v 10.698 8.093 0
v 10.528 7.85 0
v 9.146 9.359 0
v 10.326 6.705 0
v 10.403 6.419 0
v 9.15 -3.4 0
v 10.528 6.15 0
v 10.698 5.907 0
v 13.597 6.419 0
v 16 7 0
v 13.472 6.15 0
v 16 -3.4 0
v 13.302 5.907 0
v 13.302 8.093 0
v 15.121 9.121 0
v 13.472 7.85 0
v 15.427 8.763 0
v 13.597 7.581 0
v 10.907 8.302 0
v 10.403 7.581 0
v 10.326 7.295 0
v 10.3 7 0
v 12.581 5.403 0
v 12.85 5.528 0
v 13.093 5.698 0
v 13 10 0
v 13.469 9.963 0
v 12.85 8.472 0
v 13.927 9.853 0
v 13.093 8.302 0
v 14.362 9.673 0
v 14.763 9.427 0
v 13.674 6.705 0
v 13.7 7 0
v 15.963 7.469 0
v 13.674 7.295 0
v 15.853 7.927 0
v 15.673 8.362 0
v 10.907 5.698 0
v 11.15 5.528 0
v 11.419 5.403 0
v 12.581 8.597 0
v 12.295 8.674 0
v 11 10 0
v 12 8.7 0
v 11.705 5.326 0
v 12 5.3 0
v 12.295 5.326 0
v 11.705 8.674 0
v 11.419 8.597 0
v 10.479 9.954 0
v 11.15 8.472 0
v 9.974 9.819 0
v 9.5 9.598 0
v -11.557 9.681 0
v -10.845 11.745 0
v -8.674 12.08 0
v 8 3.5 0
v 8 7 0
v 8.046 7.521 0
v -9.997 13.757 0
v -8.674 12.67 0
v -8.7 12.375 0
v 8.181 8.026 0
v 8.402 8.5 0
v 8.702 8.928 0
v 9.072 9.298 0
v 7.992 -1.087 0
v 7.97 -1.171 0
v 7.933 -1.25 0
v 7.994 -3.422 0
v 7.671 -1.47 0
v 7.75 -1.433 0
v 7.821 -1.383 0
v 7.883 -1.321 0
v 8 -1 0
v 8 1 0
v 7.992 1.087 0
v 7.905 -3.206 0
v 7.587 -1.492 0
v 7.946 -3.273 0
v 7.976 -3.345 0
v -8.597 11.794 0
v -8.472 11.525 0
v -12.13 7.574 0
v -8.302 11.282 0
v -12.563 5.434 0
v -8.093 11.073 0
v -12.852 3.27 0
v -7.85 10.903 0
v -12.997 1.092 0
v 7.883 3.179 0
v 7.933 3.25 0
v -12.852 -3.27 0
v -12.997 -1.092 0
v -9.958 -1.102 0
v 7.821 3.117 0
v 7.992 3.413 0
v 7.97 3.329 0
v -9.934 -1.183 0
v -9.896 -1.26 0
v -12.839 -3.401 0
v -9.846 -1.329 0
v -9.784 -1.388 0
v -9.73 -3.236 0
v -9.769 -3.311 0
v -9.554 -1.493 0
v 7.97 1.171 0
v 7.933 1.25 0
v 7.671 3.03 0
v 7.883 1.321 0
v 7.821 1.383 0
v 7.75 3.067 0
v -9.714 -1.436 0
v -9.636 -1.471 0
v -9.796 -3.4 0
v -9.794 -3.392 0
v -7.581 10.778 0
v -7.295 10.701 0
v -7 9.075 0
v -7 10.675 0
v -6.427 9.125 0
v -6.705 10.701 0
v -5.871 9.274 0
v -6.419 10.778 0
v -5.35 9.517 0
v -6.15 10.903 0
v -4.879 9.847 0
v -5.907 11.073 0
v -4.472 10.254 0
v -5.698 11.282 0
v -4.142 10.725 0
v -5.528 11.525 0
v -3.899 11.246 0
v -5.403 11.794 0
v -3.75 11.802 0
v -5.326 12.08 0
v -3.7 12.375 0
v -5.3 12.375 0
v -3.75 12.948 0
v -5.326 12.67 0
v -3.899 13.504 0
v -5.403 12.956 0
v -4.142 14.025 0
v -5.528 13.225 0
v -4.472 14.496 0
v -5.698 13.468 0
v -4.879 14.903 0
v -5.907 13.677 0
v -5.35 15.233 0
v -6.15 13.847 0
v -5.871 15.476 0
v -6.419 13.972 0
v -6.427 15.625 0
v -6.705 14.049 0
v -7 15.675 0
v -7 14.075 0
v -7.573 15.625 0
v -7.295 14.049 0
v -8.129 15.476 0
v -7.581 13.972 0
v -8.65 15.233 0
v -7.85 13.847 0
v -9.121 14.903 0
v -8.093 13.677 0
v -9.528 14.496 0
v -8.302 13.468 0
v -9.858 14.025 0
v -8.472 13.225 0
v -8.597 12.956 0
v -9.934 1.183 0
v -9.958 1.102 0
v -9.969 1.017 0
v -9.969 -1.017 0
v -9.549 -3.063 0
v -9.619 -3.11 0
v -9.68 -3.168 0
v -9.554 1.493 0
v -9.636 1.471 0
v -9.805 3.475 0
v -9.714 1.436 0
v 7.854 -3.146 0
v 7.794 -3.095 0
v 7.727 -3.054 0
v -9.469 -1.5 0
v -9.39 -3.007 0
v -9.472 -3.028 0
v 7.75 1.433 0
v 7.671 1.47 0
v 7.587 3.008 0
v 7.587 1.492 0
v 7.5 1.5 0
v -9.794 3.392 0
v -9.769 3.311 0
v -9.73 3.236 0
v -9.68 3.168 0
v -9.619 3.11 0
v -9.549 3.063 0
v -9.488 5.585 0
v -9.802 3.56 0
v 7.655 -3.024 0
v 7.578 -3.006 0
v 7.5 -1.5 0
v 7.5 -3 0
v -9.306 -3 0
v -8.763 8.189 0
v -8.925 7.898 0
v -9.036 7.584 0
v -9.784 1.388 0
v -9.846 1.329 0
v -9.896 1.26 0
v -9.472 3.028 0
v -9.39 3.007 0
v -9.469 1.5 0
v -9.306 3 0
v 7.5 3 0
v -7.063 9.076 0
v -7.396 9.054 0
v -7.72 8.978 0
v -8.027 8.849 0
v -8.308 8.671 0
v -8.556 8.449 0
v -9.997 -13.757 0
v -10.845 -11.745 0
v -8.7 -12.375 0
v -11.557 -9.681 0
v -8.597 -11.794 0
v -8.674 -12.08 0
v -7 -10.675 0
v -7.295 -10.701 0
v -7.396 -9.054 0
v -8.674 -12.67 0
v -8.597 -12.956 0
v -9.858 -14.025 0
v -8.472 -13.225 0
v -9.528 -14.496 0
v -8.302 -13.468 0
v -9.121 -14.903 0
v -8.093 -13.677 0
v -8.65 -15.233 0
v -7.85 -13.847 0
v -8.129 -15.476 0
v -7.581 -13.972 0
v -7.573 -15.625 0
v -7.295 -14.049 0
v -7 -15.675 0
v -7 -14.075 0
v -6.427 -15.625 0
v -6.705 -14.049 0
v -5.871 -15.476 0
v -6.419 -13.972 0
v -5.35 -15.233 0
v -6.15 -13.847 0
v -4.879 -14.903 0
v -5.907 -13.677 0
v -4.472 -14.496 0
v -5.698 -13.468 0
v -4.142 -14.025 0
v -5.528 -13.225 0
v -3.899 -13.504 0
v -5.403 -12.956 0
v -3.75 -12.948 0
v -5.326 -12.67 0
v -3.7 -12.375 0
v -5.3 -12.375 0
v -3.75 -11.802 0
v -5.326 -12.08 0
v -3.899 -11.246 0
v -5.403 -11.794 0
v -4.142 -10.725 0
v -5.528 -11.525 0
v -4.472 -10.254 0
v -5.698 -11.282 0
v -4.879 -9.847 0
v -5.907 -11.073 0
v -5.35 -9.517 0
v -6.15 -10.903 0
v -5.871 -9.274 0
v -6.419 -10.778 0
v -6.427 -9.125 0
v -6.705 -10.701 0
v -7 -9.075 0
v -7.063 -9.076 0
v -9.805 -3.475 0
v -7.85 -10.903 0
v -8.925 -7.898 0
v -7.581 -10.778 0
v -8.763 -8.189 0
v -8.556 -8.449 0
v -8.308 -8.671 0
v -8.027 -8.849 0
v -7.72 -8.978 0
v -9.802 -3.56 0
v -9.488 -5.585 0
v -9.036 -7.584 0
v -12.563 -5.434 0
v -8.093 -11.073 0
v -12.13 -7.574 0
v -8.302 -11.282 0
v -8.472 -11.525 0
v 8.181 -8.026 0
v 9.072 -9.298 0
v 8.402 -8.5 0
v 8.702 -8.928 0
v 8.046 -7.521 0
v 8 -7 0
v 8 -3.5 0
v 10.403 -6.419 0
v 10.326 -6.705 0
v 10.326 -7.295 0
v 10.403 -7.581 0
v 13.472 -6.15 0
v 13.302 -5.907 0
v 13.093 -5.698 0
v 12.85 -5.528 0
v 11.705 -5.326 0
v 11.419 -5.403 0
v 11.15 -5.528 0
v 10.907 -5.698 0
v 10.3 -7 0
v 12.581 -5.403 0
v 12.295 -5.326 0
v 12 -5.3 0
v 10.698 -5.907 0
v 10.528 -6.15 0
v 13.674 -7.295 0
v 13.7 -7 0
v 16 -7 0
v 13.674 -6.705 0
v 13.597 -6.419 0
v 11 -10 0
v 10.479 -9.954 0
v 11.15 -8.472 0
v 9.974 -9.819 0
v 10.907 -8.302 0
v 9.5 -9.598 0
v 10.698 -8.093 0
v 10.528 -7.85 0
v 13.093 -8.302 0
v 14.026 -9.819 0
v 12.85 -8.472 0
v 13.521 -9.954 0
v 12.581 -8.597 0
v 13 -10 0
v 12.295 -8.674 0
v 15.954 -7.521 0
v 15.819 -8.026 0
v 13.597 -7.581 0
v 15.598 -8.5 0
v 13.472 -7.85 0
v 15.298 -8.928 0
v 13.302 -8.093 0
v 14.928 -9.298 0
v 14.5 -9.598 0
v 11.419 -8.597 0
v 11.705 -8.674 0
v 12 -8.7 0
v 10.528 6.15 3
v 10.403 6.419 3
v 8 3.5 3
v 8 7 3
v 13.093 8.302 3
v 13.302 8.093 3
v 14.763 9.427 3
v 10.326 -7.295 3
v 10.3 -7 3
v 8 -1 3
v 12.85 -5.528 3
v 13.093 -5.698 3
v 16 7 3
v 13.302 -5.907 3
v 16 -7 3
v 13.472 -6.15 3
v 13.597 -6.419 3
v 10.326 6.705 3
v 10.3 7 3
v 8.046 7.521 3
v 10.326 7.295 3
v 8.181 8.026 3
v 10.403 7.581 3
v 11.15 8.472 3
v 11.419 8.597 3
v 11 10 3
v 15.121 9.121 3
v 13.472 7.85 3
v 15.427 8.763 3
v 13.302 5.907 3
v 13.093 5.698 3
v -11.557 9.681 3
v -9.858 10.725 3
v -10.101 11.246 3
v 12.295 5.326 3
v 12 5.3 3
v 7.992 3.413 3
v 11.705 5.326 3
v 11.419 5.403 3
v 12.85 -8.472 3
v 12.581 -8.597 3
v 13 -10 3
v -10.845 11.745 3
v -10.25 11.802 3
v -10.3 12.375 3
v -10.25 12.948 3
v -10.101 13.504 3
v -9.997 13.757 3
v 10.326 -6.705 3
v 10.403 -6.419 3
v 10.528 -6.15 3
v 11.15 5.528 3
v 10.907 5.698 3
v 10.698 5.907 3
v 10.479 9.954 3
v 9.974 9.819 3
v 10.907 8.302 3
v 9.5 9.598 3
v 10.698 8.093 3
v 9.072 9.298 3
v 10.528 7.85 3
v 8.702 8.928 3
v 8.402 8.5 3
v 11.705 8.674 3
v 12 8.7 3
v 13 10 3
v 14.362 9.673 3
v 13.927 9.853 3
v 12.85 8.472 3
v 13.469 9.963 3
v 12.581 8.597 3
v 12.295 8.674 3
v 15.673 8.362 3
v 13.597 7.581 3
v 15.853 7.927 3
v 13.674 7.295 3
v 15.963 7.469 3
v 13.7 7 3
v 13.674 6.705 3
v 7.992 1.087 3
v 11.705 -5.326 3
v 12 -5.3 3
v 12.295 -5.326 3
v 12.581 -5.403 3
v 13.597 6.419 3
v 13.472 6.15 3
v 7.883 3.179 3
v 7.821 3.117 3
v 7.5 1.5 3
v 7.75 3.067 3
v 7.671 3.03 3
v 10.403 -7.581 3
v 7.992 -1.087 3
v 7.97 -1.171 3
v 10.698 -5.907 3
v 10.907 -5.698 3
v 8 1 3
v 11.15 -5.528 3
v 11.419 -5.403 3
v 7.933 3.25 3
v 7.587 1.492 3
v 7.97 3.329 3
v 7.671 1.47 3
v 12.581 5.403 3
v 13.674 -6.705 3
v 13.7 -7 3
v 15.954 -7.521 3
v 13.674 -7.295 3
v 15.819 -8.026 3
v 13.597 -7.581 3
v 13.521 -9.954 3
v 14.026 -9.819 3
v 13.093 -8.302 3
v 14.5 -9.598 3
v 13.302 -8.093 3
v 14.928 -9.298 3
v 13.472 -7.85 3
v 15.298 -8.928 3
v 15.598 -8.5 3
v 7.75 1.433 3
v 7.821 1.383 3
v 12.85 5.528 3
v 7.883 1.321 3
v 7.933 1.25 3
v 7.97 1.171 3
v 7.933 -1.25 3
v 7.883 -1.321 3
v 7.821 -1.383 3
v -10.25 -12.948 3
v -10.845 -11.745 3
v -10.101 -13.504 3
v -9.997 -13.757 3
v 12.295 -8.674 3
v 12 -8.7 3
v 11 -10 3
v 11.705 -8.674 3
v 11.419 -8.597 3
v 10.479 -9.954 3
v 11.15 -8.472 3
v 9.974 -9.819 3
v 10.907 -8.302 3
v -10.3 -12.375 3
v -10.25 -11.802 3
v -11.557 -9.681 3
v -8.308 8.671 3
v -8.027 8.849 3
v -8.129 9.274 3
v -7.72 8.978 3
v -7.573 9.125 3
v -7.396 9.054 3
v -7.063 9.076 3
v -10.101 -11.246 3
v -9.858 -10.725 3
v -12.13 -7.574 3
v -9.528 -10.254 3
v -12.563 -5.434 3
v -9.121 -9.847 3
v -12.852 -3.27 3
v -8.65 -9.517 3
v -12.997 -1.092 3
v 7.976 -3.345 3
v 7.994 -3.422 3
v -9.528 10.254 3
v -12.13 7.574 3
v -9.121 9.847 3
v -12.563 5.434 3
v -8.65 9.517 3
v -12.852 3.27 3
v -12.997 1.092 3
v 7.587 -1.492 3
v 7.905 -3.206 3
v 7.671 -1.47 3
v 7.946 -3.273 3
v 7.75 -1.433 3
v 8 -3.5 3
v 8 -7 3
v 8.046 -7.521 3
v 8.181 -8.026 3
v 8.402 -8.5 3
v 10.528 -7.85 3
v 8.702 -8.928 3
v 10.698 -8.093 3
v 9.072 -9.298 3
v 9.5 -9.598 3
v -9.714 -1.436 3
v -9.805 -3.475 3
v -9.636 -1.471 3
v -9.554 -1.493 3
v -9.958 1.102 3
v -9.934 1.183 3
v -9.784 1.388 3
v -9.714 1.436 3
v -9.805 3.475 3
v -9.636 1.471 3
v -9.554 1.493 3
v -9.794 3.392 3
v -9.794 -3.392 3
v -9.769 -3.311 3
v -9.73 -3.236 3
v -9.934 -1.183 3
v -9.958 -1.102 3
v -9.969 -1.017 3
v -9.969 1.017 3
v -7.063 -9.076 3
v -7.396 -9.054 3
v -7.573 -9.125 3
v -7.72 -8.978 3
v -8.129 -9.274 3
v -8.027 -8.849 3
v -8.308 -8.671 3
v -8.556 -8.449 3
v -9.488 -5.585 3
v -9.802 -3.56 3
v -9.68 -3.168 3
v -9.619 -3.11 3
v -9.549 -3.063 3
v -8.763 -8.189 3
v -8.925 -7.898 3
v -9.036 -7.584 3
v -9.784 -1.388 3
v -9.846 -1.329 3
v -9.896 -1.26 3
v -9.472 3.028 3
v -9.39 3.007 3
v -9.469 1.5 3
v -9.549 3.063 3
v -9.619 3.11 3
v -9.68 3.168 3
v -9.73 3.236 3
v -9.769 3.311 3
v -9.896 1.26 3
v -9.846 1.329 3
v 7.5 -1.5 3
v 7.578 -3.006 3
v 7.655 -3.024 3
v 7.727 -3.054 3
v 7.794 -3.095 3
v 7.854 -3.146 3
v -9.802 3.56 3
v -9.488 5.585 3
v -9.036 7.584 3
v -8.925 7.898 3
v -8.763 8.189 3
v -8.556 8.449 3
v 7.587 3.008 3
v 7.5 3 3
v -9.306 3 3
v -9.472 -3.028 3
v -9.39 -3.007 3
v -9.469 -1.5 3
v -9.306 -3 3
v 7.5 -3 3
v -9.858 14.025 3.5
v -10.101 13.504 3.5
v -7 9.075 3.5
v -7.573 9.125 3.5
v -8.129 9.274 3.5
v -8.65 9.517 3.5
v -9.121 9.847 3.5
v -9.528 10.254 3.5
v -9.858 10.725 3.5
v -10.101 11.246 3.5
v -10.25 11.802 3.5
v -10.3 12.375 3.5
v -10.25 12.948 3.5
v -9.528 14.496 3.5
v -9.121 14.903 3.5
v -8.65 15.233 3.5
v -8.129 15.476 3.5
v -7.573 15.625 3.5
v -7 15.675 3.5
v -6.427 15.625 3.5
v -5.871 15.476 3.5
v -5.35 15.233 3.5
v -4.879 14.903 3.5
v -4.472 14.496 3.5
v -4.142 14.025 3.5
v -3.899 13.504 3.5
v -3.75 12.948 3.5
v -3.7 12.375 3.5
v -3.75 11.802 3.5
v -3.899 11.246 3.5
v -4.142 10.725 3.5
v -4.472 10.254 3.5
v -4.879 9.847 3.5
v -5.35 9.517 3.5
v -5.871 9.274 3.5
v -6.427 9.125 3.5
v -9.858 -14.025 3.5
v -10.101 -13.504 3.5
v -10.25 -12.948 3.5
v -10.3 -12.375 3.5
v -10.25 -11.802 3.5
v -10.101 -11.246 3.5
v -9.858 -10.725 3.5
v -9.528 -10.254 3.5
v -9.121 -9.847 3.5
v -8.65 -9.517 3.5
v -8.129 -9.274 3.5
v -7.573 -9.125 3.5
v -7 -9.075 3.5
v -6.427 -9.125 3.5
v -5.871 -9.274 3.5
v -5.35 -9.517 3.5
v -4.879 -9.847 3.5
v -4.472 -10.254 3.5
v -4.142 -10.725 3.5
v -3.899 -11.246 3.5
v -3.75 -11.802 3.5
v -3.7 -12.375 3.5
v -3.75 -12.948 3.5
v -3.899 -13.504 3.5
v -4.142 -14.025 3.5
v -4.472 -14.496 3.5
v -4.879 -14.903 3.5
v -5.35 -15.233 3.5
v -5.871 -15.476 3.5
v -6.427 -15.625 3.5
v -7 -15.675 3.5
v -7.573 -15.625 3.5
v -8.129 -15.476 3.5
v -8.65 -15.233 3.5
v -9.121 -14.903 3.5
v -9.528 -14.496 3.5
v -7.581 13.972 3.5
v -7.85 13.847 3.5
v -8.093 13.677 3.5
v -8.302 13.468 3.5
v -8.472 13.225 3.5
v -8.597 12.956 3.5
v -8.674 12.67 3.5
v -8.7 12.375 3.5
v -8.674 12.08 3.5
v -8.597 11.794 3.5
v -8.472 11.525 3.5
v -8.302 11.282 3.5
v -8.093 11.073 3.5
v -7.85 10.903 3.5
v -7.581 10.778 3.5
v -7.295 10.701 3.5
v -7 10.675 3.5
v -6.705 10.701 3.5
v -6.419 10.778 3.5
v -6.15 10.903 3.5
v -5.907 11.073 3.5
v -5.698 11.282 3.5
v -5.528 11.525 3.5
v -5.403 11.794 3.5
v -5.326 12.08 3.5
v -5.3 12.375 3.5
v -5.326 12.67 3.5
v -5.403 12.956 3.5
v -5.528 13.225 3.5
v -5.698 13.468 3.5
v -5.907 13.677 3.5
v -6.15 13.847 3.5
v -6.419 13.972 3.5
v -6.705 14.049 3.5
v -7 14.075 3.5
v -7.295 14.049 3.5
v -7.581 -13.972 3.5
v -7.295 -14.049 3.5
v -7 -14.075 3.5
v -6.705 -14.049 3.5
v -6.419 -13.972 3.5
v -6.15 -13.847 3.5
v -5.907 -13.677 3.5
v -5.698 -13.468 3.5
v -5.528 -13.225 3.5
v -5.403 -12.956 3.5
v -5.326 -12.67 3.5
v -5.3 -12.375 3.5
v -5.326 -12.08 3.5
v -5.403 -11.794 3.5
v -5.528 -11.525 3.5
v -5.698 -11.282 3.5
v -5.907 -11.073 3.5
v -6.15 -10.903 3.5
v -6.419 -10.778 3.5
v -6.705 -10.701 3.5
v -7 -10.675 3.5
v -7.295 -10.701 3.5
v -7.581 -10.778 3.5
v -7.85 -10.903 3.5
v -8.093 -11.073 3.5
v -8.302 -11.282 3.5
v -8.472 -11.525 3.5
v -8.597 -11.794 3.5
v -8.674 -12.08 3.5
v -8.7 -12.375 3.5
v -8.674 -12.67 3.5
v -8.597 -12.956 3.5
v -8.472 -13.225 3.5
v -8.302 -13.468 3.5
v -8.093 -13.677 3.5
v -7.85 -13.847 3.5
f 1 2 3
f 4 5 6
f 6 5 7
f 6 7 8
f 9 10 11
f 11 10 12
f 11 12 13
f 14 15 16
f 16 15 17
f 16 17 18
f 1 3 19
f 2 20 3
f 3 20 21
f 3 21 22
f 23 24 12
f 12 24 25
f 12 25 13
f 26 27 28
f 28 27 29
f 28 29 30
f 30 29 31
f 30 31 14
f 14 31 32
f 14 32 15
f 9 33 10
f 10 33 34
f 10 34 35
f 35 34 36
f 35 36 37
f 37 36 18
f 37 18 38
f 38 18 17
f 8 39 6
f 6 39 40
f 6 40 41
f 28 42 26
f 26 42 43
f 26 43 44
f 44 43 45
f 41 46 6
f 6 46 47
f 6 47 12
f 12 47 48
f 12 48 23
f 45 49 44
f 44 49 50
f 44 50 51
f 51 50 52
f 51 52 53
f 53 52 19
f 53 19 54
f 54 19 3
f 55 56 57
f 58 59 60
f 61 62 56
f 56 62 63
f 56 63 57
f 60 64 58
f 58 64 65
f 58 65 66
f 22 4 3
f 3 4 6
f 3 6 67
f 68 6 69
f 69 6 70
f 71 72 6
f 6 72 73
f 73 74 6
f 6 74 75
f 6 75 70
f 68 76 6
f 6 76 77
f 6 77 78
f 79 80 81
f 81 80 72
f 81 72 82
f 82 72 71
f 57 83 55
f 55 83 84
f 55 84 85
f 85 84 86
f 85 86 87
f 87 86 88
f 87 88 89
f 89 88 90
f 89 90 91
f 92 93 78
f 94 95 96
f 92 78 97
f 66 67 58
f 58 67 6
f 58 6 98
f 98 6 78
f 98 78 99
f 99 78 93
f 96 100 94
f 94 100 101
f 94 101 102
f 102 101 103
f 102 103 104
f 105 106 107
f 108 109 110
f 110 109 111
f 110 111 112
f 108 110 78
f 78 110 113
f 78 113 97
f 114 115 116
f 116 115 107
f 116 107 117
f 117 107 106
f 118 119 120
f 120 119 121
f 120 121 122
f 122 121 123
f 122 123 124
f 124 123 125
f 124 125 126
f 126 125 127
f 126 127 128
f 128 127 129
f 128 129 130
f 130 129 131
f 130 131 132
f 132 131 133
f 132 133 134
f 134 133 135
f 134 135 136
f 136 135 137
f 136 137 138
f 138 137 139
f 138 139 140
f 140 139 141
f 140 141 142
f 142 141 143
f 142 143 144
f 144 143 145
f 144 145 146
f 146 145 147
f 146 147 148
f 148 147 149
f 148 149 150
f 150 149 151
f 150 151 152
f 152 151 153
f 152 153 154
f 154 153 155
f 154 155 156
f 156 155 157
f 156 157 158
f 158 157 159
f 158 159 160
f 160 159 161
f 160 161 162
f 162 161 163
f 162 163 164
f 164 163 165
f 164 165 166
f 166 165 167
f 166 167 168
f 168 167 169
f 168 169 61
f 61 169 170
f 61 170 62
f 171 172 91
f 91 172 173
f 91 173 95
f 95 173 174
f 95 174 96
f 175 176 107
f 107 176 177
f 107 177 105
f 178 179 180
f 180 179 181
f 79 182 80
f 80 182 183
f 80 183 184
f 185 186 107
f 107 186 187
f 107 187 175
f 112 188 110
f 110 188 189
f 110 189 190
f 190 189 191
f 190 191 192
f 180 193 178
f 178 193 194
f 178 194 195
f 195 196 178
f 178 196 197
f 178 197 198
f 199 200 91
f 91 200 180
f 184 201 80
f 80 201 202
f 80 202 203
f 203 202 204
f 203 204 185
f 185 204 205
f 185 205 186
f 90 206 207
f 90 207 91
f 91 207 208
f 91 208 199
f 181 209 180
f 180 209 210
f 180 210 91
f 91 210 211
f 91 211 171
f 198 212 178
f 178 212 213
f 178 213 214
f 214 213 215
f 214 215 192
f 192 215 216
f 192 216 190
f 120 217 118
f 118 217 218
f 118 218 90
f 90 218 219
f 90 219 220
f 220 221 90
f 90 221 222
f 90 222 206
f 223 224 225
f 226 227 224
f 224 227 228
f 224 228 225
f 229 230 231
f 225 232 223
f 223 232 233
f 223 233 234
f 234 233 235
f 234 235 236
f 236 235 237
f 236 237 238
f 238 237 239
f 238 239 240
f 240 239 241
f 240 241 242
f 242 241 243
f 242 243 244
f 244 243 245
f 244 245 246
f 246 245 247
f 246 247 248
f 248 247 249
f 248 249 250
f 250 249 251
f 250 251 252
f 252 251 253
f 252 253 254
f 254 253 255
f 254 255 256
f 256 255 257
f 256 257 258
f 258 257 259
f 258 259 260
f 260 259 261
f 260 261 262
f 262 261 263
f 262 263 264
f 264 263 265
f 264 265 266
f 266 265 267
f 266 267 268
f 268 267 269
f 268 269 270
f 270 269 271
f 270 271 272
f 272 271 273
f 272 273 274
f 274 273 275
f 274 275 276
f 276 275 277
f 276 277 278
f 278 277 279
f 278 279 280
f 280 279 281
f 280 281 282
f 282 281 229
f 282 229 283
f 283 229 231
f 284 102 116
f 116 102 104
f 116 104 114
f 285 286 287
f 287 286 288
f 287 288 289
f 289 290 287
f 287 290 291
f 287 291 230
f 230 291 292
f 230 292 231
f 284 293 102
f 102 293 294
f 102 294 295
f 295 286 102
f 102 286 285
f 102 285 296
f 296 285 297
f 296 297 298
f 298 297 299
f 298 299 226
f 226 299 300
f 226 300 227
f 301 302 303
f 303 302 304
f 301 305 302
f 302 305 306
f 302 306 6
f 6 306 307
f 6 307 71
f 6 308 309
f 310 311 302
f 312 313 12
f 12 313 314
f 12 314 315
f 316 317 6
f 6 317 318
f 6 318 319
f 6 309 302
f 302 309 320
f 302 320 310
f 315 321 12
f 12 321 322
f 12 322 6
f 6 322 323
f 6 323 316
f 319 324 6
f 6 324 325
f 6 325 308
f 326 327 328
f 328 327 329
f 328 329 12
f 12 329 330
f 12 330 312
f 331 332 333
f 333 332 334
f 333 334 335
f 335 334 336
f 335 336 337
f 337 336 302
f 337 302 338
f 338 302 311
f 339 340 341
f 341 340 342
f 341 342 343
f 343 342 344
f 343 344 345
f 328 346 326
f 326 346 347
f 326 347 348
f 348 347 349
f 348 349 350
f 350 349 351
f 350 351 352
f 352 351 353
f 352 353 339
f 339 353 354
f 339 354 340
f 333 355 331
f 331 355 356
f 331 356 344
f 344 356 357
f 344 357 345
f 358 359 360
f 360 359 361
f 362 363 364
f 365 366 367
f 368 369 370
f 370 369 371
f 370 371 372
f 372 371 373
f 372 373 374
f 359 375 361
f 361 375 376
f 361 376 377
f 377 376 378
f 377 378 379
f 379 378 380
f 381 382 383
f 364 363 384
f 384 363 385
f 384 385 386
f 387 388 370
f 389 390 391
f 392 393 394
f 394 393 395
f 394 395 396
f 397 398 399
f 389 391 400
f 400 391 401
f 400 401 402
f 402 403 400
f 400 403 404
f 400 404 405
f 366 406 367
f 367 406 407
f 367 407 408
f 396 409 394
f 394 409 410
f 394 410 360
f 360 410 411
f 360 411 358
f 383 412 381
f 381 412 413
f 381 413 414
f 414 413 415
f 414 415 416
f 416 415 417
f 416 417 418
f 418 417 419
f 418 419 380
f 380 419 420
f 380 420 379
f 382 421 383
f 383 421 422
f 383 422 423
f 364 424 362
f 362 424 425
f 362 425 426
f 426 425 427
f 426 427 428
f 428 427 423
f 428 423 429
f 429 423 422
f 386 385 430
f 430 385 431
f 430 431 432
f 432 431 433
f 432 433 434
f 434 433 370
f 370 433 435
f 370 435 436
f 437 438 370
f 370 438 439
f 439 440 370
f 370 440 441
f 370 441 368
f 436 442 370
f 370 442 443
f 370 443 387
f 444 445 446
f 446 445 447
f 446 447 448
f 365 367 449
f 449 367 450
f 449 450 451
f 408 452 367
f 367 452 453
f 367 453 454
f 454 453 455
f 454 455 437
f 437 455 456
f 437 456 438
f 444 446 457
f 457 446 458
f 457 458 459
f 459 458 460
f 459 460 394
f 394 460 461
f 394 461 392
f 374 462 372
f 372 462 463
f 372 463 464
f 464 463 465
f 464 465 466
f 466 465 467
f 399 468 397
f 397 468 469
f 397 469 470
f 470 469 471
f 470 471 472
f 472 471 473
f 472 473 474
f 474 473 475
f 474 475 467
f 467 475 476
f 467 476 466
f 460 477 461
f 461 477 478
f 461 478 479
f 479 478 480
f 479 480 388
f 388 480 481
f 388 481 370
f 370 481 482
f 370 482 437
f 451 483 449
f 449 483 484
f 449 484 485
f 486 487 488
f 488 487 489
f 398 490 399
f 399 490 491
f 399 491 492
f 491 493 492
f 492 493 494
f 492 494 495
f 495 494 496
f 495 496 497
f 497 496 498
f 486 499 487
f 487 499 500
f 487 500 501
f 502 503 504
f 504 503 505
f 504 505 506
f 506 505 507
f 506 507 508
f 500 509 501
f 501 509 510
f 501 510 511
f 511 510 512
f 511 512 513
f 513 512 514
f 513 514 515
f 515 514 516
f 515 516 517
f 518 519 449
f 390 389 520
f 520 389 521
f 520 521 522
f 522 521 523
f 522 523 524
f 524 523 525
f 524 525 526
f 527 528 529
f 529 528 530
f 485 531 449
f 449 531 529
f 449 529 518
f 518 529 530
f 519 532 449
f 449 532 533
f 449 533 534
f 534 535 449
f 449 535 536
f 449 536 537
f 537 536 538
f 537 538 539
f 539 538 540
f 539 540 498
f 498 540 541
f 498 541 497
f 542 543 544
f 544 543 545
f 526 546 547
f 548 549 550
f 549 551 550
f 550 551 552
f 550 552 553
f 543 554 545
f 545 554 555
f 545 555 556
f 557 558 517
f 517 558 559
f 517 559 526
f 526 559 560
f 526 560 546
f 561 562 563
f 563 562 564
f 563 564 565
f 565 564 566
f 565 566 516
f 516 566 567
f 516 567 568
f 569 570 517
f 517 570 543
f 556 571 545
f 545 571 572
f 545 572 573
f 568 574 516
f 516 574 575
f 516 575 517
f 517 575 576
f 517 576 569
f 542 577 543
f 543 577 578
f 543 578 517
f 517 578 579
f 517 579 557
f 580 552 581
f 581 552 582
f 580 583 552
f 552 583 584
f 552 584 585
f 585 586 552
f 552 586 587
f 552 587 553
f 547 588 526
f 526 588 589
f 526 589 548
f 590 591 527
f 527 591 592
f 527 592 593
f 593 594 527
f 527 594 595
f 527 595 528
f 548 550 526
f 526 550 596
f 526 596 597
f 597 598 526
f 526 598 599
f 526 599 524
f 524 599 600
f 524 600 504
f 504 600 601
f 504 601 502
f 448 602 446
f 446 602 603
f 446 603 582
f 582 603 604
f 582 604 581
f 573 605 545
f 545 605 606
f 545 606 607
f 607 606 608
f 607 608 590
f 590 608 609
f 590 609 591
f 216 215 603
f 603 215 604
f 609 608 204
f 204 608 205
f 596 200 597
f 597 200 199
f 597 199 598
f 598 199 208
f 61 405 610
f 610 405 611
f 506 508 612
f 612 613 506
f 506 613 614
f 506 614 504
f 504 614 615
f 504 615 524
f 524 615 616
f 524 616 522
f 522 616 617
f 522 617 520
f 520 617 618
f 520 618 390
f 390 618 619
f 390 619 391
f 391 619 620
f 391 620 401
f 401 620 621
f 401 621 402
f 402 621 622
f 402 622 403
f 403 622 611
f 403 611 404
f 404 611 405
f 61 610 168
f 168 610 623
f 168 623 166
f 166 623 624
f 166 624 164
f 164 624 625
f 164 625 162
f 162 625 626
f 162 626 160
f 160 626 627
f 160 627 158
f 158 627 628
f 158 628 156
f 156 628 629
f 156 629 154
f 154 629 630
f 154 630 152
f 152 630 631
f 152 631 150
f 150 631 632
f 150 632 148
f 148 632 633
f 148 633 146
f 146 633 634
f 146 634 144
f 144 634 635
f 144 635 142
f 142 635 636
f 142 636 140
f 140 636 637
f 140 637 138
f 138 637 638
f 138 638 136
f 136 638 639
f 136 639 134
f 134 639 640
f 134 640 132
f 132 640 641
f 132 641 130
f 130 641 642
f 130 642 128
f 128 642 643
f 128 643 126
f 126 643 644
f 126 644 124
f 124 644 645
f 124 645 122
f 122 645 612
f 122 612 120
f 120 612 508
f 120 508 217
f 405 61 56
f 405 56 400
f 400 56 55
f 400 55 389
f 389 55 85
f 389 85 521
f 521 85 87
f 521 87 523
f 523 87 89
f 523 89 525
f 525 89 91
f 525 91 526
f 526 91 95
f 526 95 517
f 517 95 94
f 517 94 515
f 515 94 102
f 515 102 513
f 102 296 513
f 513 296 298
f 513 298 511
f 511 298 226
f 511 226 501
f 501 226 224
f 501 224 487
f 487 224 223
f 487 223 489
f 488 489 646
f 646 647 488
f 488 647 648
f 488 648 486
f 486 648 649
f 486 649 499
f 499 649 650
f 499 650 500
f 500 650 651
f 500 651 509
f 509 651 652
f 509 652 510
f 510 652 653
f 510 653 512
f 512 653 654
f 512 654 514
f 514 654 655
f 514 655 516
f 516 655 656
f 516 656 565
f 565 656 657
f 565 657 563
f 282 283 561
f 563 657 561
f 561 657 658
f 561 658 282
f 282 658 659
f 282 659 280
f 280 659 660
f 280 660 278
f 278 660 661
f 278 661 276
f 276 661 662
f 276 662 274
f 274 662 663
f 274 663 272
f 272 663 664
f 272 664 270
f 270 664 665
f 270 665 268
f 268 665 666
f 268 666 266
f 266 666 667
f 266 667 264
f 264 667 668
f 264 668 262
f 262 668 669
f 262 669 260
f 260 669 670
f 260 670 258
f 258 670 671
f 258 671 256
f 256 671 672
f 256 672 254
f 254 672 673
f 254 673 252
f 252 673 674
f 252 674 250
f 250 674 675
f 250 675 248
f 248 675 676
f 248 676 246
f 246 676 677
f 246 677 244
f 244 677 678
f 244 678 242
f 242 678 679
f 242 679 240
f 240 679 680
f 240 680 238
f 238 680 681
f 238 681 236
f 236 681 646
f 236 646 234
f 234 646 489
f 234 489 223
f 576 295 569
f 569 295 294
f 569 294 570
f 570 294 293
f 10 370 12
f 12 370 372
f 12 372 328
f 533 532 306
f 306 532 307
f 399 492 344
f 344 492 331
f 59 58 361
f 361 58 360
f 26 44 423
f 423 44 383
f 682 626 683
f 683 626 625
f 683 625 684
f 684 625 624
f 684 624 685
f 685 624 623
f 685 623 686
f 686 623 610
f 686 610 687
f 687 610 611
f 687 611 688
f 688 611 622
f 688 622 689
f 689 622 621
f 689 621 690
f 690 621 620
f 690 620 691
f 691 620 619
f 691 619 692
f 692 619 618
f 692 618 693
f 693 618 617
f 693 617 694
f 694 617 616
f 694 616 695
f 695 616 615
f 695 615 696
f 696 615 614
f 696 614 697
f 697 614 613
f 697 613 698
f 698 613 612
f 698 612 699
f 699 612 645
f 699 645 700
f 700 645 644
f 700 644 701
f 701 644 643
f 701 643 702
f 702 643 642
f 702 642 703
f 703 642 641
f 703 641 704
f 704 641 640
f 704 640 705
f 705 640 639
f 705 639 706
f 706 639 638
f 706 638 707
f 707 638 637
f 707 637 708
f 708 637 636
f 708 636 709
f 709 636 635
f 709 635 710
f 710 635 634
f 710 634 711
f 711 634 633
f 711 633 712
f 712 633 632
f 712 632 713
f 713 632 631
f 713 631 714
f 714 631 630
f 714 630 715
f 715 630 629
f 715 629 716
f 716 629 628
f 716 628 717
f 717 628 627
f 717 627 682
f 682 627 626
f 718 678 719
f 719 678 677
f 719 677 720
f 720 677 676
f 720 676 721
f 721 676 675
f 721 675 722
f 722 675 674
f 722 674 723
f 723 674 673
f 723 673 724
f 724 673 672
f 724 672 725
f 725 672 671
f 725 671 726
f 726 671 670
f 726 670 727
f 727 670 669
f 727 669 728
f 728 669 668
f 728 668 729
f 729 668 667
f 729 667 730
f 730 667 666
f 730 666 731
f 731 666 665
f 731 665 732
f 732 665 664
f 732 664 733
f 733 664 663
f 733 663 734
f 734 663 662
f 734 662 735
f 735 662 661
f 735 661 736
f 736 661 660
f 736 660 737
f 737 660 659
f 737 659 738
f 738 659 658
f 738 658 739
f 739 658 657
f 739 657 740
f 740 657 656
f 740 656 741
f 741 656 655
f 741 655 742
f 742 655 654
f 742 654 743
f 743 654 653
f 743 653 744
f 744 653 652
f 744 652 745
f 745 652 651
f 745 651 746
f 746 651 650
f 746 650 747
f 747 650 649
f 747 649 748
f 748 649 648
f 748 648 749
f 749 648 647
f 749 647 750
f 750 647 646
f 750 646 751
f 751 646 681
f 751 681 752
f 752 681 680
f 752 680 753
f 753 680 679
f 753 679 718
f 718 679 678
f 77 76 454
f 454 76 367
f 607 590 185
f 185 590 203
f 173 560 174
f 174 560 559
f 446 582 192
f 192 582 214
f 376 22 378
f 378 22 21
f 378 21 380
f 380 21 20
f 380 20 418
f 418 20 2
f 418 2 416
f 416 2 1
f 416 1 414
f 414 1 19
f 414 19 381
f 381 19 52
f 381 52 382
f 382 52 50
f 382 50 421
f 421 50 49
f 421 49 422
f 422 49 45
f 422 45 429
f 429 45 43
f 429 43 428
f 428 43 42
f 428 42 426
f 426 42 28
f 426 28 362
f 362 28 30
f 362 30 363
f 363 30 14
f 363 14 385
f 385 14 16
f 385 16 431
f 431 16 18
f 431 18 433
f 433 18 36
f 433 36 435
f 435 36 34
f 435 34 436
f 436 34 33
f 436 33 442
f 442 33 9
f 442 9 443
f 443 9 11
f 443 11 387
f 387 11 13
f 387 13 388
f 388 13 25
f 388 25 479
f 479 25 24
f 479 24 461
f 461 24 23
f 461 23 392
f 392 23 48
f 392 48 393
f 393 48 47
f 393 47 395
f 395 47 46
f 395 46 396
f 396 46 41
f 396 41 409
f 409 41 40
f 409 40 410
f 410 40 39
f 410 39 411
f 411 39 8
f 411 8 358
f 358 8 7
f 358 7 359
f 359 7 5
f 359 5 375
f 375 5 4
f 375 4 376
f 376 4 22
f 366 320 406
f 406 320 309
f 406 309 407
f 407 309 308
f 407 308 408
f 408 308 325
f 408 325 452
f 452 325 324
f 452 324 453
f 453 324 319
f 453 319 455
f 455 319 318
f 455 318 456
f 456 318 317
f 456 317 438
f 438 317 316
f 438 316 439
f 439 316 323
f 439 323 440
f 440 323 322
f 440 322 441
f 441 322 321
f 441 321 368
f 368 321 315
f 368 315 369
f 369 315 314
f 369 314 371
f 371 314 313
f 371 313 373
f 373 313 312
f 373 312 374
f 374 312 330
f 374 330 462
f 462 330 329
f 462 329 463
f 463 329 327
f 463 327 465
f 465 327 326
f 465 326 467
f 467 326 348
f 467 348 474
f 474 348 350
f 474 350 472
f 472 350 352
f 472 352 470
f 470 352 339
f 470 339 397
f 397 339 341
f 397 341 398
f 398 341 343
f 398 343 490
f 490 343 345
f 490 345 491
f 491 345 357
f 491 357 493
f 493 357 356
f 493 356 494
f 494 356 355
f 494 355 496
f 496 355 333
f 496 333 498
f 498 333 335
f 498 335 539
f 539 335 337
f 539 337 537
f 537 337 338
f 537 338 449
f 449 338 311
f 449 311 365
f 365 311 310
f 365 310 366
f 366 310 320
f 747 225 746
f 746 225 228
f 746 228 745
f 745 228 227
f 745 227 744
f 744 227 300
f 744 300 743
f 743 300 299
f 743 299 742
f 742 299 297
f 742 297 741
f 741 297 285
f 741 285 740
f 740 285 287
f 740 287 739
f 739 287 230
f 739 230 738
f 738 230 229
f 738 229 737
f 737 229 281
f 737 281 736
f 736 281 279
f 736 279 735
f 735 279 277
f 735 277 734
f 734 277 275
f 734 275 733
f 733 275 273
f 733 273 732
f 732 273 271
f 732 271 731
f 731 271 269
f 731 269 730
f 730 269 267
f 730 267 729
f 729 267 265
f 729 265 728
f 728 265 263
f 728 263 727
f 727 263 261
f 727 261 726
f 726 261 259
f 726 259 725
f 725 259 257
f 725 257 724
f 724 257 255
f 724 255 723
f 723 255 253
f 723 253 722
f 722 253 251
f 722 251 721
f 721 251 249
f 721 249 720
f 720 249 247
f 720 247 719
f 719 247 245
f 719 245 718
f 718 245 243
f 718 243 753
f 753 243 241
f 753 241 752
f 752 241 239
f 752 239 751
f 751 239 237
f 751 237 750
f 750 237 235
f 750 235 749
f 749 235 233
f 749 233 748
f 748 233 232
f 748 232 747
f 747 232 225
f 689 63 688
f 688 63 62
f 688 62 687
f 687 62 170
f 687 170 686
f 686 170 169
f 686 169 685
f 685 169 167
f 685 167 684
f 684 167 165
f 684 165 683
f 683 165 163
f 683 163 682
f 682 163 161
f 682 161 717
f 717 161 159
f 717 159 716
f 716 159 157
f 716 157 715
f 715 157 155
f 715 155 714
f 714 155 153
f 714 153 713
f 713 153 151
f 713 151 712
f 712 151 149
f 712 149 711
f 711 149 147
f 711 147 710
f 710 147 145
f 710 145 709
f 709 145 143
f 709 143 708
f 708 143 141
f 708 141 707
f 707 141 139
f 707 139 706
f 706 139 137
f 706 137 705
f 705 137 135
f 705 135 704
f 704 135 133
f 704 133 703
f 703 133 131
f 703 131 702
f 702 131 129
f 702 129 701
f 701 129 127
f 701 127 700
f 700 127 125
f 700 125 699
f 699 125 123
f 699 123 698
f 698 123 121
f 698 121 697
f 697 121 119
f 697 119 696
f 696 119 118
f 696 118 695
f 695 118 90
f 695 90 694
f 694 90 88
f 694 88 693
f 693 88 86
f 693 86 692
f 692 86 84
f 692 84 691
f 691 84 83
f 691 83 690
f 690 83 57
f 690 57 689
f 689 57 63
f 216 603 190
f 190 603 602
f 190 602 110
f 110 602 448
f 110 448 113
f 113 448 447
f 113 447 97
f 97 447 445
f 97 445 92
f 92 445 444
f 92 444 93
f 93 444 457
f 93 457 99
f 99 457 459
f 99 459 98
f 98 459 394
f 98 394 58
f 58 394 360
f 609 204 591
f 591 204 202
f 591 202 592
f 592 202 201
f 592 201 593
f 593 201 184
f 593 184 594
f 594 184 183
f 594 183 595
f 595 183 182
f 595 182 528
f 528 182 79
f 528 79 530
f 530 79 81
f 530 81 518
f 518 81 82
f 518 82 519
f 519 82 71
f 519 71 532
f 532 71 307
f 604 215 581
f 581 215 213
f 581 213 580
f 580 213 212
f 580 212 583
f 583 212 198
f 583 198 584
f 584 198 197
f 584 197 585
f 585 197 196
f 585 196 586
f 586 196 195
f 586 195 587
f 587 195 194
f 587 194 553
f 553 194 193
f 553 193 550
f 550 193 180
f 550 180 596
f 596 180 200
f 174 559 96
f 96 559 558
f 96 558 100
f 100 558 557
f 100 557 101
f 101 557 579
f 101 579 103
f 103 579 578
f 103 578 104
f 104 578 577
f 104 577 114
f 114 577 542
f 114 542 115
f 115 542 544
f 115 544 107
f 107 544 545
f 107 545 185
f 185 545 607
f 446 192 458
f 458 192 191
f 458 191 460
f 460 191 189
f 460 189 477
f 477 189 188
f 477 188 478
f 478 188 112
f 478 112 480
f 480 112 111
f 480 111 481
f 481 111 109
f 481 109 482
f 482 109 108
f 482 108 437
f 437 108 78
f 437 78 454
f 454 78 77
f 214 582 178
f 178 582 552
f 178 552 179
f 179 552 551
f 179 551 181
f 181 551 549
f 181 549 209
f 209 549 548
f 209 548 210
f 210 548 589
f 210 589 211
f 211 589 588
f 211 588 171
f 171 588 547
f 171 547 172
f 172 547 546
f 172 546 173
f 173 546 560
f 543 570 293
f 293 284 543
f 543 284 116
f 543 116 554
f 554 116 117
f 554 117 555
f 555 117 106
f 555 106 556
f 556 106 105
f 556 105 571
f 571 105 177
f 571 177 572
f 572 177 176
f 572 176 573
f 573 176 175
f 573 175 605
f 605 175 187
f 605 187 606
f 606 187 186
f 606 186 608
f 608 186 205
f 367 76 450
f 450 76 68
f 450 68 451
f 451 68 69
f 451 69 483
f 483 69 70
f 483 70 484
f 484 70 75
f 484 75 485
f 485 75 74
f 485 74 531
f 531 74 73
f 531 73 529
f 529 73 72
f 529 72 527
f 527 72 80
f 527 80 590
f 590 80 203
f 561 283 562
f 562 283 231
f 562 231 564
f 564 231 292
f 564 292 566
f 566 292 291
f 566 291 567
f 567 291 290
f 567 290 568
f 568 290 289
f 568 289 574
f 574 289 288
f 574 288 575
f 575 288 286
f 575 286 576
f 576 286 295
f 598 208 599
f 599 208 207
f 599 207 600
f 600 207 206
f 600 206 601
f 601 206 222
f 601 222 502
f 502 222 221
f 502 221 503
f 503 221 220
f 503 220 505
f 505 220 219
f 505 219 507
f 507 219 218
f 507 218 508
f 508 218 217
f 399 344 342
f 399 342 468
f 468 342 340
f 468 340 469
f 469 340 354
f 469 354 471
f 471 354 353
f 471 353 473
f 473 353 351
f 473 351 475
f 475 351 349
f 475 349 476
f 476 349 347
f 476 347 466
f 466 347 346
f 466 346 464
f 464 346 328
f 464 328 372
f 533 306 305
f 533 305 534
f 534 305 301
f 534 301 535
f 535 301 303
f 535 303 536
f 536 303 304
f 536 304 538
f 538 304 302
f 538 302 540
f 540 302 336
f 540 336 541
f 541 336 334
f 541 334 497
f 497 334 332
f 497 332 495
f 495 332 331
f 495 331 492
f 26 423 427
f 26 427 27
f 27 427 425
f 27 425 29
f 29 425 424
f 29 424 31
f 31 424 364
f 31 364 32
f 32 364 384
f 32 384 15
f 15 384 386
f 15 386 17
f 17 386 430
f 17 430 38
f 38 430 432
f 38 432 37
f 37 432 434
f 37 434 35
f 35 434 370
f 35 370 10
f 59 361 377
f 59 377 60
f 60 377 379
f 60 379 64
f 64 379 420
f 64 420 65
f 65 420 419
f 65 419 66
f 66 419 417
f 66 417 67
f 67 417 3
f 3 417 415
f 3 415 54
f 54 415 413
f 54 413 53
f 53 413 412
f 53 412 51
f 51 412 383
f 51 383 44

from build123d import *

# Parameters (mm, degrees)
BOSS_EXTRUDE1_DEPTH  = 3
SKETCH2_W            = 8
SKETCH2_H            = 3
BOSS_EXTRUDE2_DEPTH  = 7
SKETCH3_W            = 8
SKETCH3_H            = 3
BOSS_EXTRUDE3_DEPTH  = 7
SKETCH4_R            = 3.300094696
BOSS_EXTRUDE4_DEPTH  = 0.5
SKETCH5_R            = 3.300094696
BOSS_EXTRUDE5_DEPTH  = 0.5
CUT_EXTRUDE1_DEPTH   = 4
M3_CLEARANCE_HOLE2_D = 3.4
M3_CLEARANCE_HOLE1_D = 3.4
FILLET1_R            = 0.5
FILLET2_R            = 2
FILLET3_R            = 3


with BuildPart() as part:
    # Sketch1 → Boss-Extrude1 (new body)
    with BuildSketch(Plane(origin=(0, 0, 0), x_dir=(-1, 0, 0), z_dir=(0, 0, -1))):
        with BuildLine():
            Line((-16, 3), (-16, -3))
            Line((-16, -3), (9.864129683, -3))
            ThreePointArc((9.864129683, -3), (9.35323266, -6.252551424), (8.487341847, -9.429080919))
            ThreePointArc((8.487341847, -9.429080919), (3.884055388, -13.461974782), (9.996965881, -13.756600705))
            ThreePointArc((9.996965881, -13.756600705), (13.015220034, 0), (9.996965881, 13.756600705))
            ThreePointArc((9.996965881, 13.756600705), (3.884055388, 13.461974781), (8.487341847, 9.429080919))
            ThreePointArc((8.487341847, 9.429080919), (9.35323266, 6.252551424), (9.864129683, 3))
            Line((9.864129683, 3), (-16, 3))
        make_face()
    extrude(amount=-BOSS_EXTRUDE1_DEPTH)

    # Sketch2 → Boss-Extrude2 (add)
    with BuildSketch(Plane.XZ.offset(3)):
        with Locations((12, 1.5)):
            Rectangle(SKETCH2_W, SKETCH2_H)
    extrude(amount=BOSS_EXTRUDE2_DEPTH)

    # Sketch3 → Boss-Extrude3 (add)
    with BuildSketch(Plane(origin=(0, 3, 0), x_dir=(-1, 0, 0), z_dir=(0, 1, 0))):
        with Locations((-12, 1.5)):
            Rectangle(SKETCH3_W, SKETCH3_H)
    extrude(amount=BOSS_EXTRUDE3_DEPTH)

    # Sketch4 → Boss-Extrude4 (add)
    with BuildSketch(Plane.XY.offset(3)):
        with Locations((-7, 12.375)):
            Circle(SKETCH4_R)
    extrude(amount=BOSS_EXTRUDE4_DEPTH)

    # Sketch5 → Boss-Extrude5 (add)
    with BuildSketch(Plane.XY.offset(3)):
        with Locations((-7, -12.375)):
            Circle(SKETCH5_R)
    extrude(amount=BOSS_EXTRUDE5_DEPTH)

    # Sketch6 → Cut-Extrude1 (cut, through all)
    with BuildSketch(Plane.XY.offset(3)):
        with BuildLine():
            Line((8, 1.5), (-9.948163366, 1.5))
            ThreePointArc((-9.948163366, 1.5), (-9.985864188, 0), (-9.948163366, -1.5))
            Line((-9.948163366, -1.5), (8, -1.5))
            Line((8, -1.5), (8, 1.5))
        make_face()
    extrude(amount=-CUT_EXTRUDE1_DEPTH, mode=Mode.SUBTRACT)

    # M3 Clearance Hole2 (through all)
    with Locations(Plane(origin=(0, 0, 0), x_dir=(-1, 0, 0), z_dir=(0, 0, -1))):
        with Locations((-12, -7), (-12, 7)):
            Hole(M3_CLEARANCE_HOLE2_D / 2)

    # M3 Clearance Hole1 (through all)
    with Locations(Plane(origin=(0, 0, 0), x_dir=(-1, 0, 0), z_dir=(0, 0, -1))):
        with Locations((7, 12.375), (7, -12.375)):
            Hole(M3_CLEARANCE_HOLE1_D / 2)

    # Fillet1
    fillet1_edges = [part.edges().sort_by_distance(p)[0] for p in [
        (-9.864129683, 3, 1.5),
        (-9.864129683, -3, 1.5),
        (8, -3, 1.5),
        (8, 3, 1.5),
        (8, 1.5, 1.5),
        (8, -1.5, 1.5),
        (-9.948163366, -1.5, 1.5),
        (-9.948163366, 1.5, 1.5),
    ]]
    fillet(fillet1_edges, radius=FILLET1_R)

    # Fillet2
    fillet2_edges = [part.edges().sort_by_distance(p)[0] for p in [
        (-8.487341847, 9.429080919, 1.5),
        (-8.487341847, -9.429080919, 1.5),
    ]]
    fillet(fillet2_edges, radius=FILLET2_R)

    # Fillet3
    fillet3_edges = [part.edges().sort_by_distance(p)[0] for p in [
        (8, -10, 1.5),
        (16, -10, 1.5),
        (16, 10, 1.5),
        (8, 10, 1.5),
    ]]
    fillet(fillet3_edges, radius=FILLET3_R)


solid = part.part
